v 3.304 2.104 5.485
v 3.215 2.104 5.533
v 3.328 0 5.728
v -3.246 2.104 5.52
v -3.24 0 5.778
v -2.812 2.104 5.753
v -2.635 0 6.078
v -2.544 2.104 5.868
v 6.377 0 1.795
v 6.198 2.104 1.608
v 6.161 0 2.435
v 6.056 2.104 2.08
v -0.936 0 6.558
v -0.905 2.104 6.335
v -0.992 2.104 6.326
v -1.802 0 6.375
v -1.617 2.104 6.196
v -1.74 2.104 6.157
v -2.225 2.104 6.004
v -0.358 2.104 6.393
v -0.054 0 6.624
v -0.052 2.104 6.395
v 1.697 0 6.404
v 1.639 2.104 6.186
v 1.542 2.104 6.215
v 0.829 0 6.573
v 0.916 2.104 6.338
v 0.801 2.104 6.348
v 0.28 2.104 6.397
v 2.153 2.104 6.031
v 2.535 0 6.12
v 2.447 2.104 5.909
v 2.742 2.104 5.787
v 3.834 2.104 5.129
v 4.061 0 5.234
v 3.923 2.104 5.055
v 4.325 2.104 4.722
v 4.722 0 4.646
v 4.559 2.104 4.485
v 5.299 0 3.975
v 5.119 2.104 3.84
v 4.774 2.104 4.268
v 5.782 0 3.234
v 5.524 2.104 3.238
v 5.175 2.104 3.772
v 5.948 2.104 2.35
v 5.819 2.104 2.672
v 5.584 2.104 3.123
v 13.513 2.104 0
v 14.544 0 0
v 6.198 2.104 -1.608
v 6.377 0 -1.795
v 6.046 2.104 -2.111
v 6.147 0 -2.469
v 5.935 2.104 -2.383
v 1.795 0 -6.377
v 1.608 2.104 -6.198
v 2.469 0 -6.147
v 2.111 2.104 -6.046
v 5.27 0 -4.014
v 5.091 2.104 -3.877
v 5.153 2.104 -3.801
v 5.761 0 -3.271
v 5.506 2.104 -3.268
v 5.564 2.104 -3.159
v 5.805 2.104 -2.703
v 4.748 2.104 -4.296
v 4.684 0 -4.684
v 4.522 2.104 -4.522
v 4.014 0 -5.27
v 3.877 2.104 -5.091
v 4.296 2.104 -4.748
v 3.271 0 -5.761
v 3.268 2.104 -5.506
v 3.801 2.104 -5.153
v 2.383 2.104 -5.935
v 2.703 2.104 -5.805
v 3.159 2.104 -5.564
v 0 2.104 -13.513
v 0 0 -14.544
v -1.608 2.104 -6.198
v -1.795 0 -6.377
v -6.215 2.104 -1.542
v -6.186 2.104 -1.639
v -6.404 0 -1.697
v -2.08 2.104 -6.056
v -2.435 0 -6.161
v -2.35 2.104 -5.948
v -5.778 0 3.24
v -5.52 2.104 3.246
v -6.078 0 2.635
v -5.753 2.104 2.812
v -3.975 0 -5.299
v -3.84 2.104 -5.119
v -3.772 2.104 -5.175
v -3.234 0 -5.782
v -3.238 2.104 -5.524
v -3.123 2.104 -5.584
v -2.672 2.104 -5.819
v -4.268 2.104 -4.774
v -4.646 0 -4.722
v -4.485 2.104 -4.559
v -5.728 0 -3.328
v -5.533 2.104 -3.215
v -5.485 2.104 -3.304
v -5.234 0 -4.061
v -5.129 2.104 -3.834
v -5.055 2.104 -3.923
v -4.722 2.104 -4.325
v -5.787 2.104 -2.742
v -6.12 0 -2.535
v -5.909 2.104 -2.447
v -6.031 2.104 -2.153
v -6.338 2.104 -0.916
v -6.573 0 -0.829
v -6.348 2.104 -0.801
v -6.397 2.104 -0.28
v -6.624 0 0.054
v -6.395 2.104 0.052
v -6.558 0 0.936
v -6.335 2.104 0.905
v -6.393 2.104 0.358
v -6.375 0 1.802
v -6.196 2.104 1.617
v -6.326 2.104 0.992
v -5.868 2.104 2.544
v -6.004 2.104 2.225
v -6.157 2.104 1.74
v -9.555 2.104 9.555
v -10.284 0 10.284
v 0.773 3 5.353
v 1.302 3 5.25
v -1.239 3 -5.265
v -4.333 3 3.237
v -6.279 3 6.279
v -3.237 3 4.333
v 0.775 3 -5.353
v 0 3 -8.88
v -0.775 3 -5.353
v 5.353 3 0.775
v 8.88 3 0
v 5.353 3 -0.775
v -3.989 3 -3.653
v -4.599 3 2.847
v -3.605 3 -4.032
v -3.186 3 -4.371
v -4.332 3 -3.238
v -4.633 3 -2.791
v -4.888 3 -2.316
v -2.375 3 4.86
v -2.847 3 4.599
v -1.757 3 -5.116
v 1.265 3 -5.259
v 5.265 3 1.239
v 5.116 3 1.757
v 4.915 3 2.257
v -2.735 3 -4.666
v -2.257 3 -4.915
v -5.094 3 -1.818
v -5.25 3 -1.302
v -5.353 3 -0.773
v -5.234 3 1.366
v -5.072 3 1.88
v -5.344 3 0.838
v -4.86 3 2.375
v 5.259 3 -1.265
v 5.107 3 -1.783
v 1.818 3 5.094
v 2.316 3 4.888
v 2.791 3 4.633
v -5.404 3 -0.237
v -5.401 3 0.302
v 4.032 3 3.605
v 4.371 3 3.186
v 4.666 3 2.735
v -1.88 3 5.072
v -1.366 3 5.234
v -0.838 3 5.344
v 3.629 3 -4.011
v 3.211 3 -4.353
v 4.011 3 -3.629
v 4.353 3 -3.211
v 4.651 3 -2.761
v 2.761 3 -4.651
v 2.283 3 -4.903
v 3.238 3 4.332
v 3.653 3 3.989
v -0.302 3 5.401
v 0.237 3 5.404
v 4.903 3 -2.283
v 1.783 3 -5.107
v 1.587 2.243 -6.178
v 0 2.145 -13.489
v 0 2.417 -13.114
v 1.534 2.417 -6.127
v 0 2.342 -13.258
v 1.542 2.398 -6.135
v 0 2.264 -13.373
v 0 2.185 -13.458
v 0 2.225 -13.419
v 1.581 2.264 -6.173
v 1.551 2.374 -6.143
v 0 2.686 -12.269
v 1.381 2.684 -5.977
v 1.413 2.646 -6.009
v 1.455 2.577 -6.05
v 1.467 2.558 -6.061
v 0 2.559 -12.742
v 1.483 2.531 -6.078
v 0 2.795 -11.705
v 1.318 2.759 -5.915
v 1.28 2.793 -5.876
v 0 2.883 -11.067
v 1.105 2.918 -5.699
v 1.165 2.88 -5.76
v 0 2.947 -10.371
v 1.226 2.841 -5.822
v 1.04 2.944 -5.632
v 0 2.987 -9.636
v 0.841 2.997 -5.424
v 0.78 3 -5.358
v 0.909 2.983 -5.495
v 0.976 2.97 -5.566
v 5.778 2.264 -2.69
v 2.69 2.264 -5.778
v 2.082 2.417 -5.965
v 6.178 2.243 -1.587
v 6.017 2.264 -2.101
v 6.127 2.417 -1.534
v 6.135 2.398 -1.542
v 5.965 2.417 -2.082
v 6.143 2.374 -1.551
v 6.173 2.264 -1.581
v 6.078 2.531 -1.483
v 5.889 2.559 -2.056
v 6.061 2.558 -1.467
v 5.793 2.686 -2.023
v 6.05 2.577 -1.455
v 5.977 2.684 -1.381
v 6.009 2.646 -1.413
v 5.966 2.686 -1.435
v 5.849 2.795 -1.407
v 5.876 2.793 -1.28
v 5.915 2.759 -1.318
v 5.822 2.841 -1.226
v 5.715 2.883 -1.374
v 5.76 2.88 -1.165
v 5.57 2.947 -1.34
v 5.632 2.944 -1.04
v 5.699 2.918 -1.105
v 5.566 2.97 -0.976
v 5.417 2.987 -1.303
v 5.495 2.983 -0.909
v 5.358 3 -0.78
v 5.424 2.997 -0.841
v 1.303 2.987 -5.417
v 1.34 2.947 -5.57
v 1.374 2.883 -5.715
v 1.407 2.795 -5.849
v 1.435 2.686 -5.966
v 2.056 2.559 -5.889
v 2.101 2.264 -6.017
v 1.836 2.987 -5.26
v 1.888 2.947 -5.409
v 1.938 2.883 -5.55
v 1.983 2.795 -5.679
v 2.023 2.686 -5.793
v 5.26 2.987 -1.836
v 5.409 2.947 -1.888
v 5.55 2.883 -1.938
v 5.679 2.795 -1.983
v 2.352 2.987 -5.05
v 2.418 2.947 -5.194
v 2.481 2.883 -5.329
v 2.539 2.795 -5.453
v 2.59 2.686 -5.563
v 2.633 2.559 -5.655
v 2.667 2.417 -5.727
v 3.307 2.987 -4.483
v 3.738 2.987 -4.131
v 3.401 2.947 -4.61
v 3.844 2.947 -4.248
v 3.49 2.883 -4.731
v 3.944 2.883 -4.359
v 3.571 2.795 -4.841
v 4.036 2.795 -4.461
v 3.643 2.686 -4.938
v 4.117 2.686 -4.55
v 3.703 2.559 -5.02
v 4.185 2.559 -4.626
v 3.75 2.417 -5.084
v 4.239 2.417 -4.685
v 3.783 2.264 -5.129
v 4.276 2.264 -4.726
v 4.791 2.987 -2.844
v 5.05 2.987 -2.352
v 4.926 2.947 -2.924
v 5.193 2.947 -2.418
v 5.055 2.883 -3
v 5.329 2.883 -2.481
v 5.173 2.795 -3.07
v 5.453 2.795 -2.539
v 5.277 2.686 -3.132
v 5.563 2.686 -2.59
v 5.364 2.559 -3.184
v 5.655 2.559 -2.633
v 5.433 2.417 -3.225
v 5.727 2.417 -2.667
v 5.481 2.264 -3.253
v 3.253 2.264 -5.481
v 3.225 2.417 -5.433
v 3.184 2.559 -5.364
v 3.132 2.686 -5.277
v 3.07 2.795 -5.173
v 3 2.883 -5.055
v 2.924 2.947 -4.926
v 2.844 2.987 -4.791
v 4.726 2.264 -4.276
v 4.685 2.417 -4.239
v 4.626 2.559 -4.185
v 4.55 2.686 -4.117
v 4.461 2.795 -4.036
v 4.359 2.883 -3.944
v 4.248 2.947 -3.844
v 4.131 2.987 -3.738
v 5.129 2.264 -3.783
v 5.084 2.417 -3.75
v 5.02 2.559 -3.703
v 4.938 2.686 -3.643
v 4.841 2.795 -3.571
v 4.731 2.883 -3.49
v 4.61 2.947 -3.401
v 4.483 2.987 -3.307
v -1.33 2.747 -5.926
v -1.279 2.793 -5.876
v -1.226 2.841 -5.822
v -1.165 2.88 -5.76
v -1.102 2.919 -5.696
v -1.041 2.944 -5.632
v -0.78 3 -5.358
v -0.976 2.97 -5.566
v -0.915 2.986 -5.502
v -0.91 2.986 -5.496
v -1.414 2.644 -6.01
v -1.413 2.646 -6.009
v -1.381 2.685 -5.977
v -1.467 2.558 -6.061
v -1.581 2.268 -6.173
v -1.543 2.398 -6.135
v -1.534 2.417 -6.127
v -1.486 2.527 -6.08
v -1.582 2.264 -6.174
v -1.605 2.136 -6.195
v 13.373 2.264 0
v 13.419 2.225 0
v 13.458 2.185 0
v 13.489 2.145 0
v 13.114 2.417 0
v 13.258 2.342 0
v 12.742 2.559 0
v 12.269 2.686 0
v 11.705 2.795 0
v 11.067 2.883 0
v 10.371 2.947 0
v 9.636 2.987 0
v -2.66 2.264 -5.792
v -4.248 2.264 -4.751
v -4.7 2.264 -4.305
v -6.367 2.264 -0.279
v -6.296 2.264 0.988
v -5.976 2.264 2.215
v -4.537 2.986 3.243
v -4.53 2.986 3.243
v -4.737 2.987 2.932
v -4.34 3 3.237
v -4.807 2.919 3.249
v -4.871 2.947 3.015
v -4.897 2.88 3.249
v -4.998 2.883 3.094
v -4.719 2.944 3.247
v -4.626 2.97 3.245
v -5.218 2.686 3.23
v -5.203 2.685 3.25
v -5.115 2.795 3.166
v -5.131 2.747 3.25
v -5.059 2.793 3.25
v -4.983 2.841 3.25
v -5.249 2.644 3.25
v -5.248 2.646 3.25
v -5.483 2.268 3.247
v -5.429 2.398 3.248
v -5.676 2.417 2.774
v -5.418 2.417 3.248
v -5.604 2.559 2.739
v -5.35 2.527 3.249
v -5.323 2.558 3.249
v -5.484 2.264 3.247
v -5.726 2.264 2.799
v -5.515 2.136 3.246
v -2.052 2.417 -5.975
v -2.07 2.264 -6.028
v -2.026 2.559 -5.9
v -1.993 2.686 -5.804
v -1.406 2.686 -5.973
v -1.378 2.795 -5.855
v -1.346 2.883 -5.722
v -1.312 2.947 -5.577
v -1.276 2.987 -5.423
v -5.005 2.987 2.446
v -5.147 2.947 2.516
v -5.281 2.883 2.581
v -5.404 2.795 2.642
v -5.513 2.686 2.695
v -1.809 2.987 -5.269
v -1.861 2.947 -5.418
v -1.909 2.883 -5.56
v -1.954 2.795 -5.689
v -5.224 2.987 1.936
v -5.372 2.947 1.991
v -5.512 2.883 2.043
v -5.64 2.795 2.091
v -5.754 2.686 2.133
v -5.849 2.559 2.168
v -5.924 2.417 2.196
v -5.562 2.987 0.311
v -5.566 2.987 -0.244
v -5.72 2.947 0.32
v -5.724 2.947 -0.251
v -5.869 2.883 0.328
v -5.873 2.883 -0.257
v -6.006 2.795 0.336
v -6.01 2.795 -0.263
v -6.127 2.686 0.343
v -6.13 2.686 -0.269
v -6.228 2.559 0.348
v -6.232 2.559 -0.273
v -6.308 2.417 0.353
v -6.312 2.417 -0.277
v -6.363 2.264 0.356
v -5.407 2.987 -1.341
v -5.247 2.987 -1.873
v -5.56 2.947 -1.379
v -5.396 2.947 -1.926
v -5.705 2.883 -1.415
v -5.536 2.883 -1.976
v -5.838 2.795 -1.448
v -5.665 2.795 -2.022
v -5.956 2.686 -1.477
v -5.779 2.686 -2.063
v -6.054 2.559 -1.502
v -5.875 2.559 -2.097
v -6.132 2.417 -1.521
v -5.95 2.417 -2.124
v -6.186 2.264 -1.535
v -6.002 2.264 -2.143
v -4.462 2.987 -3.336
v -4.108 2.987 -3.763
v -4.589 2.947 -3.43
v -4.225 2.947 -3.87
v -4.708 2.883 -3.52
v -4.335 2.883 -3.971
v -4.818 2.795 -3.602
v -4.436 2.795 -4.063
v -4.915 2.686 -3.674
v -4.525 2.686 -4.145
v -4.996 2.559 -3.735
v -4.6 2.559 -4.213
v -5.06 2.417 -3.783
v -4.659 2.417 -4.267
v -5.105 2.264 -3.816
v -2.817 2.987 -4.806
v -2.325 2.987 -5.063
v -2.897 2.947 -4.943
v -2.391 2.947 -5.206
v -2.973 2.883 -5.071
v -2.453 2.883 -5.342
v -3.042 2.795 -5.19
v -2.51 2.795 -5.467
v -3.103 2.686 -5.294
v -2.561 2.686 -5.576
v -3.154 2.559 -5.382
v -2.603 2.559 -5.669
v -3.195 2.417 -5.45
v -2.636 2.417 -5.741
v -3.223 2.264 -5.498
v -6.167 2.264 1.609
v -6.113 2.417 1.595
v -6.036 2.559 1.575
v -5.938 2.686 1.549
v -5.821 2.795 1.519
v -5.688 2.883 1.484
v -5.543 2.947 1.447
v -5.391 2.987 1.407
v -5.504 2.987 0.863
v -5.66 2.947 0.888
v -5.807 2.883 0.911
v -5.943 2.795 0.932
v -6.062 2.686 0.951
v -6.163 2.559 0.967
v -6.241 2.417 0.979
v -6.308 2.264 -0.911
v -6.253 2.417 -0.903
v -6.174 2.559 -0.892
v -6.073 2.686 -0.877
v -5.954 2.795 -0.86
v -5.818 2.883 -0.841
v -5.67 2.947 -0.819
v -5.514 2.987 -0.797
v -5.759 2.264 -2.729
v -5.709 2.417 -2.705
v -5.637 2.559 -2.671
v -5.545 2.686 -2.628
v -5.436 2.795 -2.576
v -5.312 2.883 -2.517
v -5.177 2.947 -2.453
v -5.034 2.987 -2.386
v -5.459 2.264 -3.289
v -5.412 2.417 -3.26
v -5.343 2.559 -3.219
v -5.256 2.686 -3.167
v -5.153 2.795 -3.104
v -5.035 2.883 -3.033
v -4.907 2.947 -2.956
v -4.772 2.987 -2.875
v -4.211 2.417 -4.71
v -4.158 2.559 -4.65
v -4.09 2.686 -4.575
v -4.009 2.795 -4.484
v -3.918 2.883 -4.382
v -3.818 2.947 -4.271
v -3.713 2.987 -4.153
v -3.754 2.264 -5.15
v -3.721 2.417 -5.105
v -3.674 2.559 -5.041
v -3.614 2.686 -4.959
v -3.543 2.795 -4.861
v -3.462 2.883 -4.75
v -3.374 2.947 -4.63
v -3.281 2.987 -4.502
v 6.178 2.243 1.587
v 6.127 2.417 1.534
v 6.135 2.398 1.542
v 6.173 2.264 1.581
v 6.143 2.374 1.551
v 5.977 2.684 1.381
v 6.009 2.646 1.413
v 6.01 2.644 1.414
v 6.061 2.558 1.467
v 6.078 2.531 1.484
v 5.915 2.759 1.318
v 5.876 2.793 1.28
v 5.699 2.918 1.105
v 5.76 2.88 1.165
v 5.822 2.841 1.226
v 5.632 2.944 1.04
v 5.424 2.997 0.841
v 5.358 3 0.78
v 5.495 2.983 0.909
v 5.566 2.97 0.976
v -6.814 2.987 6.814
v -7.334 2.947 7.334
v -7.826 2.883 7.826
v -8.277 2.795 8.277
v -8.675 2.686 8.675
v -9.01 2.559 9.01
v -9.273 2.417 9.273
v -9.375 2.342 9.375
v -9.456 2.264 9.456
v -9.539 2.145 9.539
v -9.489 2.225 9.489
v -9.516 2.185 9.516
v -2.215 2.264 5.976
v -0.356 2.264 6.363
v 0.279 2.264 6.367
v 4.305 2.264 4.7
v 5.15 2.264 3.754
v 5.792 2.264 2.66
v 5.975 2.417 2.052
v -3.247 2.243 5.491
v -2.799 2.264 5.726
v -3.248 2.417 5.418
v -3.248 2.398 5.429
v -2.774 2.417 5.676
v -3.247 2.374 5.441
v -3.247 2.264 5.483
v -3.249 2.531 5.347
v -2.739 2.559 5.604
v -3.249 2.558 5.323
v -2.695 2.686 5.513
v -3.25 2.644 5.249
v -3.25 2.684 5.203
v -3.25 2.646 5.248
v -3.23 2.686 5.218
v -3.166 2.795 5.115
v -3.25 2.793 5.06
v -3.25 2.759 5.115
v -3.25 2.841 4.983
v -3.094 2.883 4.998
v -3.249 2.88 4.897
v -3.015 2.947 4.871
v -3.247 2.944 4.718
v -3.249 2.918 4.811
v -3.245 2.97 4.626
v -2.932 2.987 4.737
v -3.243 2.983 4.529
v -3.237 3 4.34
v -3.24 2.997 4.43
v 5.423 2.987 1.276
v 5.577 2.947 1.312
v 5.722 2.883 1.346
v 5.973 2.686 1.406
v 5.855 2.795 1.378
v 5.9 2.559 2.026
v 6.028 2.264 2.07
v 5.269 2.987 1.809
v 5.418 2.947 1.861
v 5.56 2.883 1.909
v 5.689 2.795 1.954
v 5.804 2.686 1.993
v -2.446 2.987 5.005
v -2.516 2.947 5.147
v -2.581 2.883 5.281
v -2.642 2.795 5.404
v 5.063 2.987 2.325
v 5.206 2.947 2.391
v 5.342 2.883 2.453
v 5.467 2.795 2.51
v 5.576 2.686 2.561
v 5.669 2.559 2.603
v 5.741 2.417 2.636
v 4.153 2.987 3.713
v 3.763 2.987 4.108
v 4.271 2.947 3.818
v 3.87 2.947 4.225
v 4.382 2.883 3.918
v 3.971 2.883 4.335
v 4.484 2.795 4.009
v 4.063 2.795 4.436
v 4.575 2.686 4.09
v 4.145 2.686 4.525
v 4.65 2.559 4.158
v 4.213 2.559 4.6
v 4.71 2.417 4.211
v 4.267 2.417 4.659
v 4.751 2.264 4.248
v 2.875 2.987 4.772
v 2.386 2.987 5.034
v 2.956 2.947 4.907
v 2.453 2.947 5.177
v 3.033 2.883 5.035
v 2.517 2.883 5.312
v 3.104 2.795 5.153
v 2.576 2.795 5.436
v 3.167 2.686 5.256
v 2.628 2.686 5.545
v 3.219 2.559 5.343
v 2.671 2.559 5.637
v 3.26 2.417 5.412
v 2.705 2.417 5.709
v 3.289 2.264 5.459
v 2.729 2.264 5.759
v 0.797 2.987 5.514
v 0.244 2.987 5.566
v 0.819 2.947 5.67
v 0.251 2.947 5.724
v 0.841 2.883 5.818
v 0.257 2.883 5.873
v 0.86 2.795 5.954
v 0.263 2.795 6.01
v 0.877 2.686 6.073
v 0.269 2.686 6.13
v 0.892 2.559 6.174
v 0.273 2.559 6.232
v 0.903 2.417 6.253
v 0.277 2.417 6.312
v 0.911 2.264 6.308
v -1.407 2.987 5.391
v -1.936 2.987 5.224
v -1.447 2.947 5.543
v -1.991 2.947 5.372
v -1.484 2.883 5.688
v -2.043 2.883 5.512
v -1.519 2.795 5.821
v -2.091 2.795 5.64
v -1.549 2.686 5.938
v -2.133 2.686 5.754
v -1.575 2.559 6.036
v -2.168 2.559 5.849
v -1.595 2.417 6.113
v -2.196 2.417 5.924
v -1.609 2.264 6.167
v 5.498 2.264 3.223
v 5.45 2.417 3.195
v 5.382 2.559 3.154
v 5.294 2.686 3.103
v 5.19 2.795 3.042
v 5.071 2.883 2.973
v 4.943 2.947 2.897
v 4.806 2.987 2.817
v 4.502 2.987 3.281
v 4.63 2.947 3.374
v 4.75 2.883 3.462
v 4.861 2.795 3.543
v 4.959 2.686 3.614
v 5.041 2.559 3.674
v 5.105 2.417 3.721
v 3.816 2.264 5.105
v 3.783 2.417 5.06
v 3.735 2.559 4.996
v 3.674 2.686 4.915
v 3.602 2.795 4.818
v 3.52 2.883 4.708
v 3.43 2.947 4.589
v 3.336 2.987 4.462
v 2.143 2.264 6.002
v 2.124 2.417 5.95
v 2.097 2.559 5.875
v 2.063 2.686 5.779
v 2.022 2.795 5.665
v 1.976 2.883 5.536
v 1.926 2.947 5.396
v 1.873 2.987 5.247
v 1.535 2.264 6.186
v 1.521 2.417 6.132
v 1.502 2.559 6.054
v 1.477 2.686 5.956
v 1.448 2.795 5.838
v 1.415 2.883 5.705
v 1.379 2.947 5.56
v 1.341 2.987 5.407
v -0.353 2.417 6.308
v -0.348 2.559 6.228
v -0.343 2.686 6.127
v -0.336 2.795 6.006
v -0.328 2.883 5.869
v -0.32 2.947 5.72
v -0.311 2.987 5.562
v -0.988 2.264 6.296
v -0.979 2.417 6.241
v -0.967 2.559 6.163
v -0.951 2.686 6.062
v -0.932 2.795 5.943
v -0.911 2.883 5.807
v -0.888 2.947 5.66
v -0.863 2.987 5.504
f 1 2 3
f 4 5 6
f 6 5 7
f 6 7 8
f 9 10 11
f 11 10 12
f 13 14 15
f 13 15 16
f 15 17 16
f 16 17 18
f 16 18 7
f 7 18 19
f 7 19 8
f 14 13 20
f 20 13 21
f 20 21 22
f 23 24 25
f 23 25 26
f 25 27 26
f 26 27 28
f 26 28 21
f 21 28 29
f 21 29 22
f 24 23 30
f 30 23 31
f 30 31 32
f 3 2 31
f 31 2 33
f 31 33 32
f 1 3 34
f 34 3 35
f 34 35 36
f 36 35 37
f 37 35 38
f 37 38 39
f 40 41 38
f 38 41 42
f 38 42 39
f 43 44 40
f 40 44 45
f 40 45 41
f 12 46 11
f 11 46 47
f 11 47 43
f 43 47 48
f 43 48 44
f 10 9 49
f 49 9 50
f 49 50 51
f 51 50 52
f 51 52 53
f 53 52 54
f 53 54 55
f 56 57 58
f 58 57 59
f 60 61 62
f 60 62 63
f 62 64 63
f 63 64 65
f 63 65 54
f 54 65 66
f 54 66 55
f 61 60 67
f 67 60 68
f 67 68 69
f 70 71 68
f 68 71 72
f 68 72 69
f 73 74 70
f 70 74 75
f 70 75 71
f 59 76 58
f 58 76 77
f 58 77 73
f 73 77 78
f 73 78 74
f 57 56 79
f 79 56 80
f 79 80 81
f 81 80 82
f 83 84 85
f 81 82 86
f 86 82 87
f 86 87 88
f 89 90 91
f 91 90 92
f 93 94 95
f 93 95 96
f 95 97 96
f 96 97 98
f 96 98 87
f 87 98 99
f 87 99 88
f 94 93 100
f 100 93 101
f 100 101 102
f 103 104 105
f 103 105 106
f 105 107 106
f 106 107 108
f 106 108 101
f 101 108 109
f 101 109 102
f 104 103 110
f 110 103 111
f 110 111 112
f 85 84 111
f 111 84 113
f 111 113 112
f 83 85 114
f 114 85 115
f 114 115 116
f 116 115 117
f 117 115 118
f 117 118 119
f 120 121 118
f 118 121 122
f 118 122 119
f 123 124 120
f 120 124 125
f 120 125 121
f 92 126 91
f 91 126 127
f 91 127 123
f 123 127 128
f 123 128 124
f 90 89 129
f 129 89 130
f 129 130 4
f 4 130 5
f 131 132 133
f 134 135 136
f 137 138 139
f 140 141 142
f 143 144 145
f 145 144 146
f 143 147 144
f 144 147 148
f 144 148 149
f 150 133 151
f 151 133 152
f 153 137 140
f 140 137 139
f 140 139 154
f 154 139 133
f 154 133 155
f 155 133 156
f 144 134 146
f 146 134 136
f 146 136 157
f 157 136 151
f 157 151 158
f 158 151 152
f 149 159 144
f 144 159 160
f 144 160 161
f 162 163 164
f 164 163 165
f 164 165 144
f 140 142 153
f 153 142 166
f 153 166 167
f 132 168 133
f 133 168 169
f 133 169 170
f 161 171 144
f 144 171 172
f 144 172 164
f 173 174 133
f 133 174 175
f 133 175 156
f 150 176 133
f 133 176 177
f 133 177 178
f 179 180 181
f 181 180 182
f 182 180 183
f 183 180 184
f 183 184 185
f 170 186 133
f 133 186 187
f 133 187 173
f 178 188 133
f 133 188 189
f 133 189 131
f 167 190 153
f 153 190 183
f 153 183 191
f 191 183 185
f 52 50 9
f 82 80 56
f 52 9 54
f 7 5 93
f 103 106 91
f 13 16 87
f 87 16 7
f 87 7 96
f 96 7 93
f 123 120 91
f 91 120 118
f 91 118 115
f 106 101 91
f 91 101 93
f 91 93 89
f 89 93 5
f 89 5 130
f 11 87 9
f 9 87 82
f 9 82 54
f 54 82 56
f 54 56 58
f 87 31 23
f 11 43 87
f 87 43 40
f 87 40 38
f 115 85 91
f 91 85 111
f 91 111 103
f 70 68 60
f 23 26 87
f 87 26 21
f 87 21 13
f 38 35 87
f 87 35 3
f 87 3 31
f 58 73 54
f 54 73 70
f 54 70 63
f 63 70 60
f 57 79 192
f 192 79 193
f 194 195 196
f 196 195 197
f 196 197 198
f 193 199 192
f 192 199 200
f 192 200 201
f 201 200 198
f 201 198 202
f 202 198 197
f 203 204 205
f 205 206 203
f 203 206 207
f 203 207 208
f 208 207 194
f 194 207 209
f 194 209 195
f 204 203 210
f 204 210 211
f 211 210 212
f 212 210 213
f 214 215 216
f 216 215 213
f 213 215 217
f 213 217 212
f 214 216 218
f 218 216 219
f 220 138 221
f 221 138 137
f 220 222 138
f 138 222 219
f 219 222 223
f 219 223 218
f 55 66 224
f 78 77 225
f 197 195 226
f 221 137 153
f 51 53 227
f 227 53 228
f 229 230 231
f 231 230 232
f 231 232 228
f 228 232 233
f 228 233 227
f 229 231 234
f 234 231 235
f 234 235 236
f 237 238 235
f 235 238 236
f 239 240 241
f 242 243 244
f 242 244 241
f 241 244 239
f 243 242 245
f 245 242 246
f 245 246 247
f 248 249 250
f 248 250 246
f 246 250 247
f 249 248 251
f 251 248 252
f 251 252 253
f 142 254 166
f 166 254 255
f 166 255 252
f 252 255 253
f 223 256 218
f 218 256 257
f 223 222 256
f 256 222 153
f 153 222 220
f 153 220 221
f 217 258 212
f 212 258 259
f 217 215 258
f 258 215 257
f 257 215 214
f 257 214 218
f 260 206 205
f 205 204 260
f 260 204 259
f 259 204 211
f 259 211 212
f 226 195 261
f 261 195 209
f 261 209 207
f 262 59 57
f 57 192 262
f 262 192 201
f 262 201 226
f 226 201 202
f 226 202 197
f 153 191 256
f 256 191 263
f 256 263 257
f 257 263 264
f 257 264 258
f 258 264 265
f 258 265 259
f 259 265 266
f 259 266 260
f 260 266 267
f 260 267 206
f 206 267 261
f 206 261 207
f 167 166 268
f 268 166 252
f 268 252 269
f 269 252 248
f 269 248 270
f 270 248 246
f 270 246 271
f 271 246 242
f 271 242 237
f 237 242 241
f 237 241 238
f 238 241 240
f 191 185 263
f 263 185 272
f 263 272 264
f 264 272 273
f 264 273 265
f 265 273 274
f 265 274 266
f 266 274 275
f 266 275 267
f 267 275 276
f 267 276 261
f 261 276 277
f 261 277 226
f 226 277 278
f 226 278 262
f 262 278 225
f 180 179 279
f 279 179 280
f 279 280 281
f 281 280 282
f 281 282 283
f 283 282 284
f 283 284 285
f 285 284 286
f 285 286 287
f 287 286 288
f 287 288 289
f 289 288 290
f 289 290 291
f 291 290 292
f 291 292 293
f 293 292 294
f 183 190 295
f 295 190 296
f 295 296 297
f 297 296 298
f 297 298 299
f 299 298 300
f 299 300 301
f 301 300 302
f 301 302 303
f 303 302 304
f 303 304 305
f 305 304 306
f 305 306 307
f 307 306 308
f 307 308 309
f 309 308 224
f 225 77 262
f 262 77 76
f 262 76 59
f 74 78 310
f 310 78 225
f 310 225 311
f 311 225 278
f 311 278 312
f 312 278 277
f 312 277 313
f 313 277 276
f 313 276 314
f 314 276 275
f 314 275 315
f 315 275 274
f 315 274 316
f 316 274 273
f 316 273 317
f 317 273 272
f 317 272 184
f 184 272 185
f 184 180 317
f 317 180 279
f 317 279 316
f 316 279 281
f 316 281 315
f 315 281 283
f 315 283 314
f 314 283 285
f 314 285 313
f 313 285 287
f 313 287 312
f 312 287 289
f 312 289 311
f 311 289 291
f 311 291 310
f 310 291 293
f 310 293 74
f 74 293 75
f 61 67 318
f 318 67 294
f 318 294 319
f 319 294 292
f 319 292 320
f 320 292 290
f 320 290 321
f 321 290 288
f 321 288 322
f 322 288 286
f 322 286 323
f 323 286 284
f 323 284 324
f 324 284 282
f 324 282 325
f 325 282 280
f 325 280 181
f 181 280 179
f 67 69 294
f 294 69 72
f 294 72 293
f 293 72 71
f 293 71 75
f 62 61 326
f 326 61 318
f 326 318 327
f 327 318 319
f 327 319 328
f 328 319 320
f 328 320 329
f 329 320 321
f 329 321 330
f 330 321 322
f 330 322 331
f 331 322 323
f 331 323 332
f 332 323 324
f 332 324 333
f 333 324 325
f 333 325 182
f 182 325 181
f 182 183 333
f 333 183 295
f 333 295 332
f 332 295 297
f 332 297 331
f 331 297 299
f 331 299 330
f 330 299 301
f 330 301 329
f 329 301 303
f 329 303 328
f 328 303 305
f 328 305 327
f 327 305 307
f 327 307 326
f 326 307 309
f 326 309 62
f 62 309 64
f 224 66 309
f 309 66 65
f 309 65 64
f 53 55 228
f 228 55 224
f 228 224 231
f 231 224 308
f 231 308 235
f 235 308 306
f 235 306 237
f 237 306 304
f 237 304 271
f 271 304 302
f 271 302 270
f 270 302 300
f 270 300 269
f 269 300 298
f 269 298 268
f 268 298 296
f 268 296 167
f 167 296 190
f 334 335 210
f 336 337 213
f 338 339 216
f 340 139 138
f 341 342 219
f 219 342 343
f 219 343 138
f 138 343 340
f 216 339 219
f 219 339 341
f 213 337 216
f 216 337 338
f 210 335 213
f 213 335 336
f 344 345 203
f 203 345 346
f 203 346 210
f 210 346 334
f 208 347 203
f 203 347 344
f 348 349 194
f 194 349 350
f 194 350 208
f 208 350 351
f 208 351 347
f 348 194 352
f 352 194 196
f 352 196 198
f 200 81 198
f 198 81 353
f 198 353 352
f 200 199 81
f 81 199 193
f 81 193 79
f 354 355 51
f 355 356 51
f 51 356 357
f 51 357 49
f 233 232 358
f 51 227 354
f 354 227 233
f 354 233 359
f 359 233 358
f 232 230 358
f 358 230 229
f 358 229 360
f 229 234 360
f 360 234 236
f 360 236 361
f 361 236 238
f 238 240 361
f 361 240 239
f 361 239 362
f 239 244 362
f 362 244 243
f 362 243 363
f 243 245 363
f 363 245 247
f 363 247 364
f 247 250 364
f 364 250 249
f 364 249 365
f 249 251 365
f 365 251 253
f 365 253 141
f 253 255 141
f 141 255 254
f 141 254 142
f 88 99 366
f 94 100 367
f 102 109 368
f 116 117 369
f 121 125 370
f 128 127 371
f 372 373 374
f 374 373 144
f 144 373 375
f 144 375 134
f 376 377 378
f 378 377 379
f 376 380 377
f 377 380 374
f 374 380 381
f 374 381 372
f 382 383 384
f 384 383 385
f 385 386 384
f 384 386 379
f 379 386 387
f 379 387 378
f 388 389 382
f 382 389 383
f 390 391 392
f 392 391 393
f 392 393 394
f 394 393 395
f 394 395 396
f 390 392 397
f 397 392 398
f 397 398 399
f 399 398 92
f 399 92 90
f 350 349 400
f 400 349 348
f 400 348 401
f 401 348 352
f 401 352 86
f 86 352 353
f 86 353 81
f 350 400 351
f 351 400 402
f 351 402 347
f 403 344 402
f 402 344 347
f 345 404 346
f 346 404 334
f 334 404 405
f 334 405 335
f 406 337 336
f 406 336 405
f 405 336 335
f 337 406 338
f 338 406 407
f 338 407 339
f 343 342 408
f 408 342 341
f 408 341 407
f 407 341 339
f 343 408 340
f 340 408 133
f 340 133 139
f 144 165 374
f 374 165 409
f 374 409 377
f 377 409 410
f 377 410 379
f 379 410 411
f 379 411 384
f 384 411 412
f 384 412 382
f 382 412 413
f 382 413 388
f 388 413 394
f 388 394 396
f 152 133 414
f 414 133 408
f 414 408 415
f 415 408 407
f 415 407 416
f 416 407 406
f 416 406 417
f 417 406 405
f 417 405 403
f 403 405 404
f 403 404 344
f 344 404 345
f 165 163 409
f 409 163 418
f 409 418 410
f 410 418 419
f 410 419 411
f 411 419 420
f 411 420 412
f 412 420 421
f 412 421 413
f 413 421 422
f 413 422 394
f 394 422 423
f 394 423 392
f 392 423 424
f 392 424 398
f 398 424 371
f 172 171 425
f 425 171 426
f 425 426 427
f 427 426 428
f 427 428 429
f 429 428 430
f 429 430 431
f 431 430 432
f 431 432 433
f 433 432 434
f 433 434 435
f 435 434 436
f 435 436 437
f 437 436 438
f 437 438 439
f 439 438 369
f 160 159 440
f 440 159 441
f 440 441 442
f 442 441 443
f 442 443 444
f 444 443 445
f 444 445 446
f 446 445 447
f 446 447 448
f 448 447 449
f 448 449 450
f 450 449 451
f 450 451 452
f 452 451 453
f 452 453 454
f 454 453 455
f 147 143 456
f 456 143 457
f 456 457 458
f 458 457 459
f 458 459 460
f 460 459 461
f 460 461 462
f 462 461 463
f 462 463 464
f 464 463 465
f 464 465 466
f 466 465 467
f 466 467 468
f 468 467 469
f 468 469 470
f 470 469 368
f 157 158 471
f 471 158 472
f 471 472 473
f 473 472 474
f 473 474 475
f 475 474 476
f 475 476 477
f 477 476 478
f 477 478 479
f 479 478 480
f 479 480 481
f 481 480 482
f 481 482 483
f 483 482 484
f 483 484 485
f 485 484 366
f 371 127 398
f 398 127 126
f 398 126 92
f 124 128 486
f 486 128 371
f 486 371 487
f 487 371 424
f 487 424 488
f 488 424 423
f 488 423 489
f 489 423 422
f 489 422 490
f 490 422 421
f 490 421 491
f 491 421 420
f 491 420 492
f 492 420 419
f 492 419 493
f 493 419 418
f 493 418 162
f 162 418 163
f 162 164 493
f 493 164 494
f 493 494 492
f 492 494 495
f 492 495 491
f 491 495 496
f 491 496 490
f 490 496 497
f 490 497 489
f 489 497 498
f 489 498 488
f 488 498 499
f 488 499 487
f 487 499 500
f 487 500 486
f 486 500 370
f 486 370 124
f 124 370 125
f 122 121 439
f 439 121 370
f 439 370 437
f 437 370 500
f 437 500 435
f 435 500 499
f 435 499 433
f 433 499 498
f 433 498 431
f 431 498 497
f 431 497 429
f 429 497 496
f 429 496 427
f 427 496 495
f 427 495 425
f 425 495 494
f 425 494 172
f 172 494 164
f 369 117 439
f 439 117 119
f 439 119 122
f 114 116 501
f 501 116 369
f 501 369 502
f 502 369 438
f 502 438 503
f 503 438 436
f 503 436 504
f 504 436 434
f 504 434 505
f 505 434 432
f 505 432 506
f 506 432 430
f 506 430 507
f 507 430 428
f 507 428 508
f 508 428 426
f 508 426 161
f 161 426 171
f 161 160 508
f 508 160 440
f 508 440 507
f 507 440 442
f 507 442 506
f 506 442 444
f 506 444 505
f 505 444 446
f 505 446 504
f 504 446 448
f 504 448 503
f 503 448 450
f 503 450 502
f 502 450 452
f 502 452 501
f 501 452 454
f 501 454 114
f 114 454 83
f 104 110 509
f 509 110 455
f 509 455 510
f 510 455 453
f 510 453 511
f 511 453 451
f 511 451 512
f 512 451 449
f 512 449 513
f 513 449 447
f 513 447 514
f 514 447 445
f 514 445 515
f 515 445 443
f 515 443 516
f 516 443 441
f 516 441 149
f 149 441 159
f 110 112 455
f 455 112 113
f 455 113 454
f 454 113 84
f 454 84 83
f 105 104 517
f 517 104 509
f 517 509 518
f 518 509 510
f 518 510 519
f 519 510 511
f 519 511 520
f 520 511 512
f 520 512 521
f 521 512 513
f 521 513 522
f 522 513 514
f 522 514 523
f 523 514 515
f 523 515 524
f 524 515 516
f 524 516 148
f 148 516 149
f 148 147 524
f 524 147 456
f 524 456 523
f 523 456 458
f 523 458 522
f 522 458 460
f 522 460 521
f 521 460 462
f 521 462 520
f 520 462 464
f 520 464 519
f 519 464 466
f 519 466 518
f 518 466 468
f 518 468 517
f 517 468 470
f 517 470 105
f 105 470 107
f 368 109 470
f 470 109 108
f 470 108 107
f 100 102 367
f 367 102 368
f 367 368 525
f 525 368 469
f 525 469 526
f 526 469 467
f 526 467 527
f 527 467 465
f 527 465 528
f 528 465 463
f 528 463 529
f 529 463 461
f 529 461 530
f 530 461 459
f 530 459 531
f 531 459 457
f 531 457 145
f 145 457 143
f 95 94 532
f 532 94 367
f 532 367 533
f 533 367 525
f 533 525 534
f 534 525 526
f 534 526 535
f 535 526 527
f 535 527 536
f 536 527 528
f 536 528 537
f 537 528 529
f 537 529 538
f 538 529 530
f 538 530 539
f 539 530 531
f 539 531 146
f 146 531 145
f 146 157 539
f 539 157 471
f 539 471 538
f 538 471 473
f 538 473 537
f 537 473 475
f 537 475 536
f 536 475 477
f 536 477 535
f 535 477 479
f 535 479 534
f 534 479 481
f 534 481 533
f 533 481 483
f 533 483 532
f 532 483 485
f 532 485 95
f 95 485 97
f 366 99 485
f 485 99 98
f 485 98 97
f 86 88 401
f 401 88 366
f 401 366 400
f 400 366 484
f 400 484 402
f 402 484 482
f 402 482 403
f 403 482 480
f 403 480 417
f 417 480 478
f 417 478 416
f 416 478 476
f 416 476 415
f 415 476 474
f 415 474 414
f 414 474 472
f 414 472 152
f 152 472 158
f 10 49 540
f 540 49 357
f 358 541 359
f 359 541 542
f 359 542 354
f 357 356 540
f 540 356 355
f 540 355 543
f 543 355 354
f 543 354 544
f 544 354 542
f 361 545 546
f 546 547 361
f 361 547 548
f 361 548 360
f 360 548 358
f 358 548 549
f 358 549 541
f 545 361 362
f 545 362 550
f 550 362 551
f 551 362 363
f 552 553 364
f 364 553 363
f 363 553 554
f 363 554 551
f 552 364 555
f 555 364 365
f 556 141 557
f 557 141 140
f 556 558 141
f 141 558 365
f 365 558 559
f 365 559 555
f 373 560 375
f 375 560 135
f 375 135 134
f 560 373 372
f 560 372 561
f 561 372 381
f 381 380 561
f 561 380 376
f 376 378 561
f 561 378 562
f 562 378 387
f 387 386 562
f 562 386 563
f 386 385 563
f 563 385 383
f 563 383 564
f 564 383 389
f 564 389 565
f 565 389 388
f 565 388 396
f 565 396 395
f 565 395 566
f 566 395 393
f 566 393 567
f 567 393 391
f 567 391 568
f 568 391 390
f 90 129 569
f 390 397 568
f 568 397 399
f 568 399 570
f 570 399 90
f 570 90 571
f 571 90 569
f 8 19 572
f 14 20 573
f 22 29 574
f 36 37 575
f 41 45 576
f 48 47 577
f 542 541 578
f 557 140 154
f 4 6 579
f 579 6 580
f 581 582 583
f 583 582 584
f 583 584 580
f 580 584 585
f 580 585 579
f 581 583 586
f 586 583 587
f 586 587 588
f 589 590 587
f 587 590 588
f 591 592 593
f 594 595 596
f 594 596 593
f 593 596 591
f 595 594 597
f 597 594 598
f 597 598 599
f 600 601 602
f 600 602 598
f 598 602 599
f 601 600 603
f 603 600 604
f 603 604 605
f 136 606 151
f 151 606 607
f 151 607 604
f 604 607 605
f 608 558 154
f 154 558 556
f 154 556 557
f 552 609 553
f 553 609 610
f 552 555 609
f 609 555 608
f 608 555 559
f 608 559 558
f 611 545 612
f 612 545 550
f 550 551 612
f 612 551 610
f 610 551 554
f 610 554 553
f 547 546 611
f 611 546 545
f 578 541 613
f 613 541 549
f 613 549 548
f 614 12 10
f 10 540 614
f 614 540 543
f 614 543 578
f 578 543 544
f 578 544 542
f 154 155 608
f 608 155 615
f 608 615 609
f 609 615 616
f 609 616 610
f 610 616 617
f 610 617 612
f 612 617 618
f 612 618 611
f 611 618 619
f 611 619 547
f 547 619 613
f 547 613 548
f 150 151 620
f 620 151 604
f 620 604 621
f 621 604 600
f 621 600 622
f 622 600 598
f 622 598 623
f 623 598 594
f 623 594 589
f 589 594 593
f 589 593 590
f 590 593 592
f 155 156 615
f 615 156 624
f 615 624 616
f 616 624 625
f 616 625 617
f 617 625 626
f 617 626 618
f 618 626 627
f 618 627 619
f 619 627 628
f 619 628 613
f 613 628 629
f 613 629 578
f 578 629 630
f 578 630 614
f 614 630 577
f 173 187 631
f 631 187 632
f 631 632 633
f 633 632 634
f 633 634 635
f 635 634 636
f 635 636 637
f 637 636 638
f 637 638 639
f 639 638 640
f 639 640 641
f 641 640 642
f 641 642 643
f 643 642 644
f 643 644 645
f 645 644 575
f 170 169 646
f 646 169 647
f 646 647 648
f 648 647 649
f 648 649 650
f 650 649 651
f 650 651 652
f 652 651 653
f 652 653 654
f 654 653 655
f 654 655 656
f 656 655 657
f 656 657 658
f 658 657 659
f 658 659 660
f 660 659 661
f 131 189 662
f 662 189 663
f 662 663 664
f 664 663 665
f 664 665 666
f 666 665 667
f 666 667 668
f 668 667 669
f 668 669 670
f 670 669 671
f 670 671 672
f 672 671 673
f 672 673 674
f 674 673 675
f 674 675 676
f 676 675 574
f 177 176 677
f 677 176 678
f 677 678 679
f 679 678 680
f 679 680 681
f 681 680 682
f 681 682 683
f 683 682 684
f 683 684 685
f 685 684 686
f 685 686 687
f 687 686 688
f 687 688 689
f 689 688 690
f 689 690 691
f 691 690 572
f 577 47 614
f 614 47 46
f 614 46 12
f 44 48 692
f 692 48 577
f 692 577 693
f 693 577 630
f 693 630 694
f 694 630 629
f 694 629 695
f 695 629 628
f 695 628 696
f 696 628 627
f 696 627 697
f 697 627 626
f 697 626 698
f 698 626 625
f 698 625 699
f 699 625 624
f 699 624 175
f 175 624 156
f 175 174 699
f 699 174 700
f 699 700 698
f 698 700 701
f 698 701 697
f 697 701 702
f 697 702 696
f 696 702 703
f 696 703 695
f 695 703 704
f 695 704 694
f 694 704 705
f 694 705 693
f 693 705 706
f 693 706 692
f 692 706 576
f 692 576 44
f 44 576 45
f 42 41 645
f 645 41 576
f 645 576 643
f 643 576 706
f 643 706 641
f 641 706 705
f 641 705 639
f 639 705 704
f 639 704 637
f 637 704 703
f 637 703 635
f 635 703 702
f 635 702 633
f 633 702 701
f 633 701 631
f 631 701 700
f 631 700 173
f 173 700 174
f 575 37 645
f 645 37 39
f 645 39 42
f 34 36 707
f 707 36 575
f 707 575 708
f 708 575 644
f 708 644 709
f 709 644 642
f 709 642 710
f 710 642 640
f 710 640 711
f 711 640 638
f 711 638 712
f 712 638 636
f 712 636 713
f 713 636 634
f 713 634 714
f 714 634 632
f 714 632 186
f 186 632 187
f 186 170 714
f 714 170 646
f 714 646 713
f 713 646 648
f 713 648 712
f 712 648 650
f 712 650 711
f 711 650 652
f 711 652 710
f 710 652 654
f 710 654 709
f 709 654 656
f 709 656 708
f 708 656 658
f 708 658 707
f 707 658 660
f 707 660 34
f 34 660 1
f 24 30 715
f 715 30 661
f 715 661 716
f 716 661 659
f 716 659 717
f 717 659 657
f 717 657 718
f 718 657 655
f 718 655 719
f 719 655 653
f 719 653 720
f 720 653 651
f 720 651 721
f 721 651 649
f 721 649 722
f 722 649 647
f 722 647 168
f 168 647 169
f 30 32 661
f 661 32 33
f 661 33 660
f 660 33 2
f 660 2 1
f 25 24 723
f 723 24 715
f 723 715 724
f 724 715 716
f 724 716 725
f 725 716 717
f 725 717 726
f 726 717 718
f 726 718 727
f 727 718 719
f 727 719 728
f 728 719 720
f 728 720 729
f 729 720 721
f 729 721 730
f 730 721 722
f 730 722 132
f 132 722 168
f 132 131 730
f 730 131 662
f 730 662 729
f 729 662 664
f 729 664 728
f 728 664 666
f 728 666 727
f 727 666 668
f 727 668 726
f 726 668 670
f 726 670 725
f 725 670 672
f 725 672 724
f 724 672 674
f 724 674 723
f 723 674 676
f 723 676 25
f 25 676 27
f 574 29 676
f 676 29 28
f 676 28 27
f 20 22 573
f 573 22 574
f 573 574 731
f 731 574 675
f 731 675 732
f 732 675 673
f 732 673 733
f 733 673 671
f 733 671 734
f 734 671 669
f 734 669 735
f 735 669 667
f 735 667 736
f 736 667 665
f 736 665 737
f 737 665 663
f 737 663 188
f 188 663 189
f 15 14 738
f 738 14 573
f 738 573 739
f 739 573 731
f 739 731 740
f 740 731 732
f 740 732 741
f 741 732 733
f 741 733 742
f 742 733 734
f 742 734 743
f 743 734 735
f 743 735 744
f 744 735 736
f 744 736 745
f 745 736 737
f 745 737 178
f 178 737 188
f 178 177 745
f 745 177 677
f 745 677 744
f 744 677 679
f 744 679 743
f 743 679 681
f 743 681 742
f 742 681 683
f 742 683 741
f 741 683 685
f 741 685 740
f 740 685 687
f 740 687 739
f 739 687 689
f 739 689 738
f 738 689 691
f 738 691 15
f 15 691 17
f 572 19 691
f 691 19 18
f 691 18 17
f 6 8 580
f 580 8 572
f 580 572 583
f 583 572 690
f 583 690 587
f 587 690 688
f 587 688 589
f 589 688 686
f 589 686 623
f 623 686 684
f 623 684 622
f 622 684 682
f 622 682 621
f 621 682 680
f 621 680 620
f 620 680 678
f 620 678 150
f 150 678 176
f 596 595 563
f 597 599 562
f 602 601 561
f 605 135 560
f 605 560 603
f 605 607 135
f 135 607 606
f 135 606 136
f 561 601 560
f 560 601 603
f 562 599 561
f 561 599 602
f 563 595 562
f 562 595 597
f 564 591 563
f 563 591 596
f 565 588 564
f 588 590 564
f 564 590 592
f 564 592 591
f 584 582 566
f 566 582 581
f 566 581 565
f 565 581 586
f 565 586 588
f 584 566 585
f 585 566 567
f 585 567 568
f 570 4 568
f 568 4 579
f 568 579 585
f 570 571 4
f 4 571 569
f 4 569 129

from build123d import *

# Parameters (mm, degrees)
BOSS_EXTRUDE1_DEPTH = 3
BOSS_EXTRUDE1_TAPER = 6
FILLET1_R           = 1


with BuildPart() as part:
    # Sketch2 → Boss-Extrude1 (new body)
    with BuildSketch(Plane(origin=(0, 0, 0), x_dir=(1, 0, 0), z_dir=(0, 1, 0))):
        with BuildLine():
            Line((1.794958228, 6.376825284), (0, 14.54359673))
            Line((0, 14.54359673), (-1.794958228, 6.376825284))
            ThreePointArc((-1.794958228, 6.376825284), (-6.120363771, 2.535137681), (-5.778323536, -3.239869266))
            Line((-5.778323536, -3.239869266), (-10.283875871, -10.283875871))
            Line((-10.283875871, -10.283875871), (-3.239869266, -5.778323536))
            ThreePointArc((-3.239869266, -5.778323536), (2.535137681, -6.120363771), (6.376825284, -1.794958228))
            Line((6.376825284, -1.794958228), (14.54359673, 0))
            Line((14.54359673, 0), (6.376825284, 1.794958228))
            ThreePointArc((6.376825284, 1.794958228), (4.68432363, 4.68432363), (1.794958228, 6.376825284))
        make_face()
    extrude(amount=BOSS_EXTRUDE1_DEPTH, taper=BOSS_EXTRUDE1_TAPER)

    # Fillet1
    fillet1_edges = [part.edges().sort_by_distance(p)[0] for p in [
        (-5.829052816, 3, -2.414472732),
        (-0.764125431, 3, -9.598084382),
        (0.764125431, 3, -9.598084382),
        (4.461363878, 3, -4.461363878),
        (9.598084382, 3, -0.764125431),
        (9.598084382, 3, 0.764125431),
        (2.414472732, 3, 5.829052816),
        (-6.246552279, 3, 7.327188827),
        (-7.327188827, 3, 6.246552279),
    ]]
    fillet(fillet1_edges, radius=FILLET1_R)


solid = part.part
